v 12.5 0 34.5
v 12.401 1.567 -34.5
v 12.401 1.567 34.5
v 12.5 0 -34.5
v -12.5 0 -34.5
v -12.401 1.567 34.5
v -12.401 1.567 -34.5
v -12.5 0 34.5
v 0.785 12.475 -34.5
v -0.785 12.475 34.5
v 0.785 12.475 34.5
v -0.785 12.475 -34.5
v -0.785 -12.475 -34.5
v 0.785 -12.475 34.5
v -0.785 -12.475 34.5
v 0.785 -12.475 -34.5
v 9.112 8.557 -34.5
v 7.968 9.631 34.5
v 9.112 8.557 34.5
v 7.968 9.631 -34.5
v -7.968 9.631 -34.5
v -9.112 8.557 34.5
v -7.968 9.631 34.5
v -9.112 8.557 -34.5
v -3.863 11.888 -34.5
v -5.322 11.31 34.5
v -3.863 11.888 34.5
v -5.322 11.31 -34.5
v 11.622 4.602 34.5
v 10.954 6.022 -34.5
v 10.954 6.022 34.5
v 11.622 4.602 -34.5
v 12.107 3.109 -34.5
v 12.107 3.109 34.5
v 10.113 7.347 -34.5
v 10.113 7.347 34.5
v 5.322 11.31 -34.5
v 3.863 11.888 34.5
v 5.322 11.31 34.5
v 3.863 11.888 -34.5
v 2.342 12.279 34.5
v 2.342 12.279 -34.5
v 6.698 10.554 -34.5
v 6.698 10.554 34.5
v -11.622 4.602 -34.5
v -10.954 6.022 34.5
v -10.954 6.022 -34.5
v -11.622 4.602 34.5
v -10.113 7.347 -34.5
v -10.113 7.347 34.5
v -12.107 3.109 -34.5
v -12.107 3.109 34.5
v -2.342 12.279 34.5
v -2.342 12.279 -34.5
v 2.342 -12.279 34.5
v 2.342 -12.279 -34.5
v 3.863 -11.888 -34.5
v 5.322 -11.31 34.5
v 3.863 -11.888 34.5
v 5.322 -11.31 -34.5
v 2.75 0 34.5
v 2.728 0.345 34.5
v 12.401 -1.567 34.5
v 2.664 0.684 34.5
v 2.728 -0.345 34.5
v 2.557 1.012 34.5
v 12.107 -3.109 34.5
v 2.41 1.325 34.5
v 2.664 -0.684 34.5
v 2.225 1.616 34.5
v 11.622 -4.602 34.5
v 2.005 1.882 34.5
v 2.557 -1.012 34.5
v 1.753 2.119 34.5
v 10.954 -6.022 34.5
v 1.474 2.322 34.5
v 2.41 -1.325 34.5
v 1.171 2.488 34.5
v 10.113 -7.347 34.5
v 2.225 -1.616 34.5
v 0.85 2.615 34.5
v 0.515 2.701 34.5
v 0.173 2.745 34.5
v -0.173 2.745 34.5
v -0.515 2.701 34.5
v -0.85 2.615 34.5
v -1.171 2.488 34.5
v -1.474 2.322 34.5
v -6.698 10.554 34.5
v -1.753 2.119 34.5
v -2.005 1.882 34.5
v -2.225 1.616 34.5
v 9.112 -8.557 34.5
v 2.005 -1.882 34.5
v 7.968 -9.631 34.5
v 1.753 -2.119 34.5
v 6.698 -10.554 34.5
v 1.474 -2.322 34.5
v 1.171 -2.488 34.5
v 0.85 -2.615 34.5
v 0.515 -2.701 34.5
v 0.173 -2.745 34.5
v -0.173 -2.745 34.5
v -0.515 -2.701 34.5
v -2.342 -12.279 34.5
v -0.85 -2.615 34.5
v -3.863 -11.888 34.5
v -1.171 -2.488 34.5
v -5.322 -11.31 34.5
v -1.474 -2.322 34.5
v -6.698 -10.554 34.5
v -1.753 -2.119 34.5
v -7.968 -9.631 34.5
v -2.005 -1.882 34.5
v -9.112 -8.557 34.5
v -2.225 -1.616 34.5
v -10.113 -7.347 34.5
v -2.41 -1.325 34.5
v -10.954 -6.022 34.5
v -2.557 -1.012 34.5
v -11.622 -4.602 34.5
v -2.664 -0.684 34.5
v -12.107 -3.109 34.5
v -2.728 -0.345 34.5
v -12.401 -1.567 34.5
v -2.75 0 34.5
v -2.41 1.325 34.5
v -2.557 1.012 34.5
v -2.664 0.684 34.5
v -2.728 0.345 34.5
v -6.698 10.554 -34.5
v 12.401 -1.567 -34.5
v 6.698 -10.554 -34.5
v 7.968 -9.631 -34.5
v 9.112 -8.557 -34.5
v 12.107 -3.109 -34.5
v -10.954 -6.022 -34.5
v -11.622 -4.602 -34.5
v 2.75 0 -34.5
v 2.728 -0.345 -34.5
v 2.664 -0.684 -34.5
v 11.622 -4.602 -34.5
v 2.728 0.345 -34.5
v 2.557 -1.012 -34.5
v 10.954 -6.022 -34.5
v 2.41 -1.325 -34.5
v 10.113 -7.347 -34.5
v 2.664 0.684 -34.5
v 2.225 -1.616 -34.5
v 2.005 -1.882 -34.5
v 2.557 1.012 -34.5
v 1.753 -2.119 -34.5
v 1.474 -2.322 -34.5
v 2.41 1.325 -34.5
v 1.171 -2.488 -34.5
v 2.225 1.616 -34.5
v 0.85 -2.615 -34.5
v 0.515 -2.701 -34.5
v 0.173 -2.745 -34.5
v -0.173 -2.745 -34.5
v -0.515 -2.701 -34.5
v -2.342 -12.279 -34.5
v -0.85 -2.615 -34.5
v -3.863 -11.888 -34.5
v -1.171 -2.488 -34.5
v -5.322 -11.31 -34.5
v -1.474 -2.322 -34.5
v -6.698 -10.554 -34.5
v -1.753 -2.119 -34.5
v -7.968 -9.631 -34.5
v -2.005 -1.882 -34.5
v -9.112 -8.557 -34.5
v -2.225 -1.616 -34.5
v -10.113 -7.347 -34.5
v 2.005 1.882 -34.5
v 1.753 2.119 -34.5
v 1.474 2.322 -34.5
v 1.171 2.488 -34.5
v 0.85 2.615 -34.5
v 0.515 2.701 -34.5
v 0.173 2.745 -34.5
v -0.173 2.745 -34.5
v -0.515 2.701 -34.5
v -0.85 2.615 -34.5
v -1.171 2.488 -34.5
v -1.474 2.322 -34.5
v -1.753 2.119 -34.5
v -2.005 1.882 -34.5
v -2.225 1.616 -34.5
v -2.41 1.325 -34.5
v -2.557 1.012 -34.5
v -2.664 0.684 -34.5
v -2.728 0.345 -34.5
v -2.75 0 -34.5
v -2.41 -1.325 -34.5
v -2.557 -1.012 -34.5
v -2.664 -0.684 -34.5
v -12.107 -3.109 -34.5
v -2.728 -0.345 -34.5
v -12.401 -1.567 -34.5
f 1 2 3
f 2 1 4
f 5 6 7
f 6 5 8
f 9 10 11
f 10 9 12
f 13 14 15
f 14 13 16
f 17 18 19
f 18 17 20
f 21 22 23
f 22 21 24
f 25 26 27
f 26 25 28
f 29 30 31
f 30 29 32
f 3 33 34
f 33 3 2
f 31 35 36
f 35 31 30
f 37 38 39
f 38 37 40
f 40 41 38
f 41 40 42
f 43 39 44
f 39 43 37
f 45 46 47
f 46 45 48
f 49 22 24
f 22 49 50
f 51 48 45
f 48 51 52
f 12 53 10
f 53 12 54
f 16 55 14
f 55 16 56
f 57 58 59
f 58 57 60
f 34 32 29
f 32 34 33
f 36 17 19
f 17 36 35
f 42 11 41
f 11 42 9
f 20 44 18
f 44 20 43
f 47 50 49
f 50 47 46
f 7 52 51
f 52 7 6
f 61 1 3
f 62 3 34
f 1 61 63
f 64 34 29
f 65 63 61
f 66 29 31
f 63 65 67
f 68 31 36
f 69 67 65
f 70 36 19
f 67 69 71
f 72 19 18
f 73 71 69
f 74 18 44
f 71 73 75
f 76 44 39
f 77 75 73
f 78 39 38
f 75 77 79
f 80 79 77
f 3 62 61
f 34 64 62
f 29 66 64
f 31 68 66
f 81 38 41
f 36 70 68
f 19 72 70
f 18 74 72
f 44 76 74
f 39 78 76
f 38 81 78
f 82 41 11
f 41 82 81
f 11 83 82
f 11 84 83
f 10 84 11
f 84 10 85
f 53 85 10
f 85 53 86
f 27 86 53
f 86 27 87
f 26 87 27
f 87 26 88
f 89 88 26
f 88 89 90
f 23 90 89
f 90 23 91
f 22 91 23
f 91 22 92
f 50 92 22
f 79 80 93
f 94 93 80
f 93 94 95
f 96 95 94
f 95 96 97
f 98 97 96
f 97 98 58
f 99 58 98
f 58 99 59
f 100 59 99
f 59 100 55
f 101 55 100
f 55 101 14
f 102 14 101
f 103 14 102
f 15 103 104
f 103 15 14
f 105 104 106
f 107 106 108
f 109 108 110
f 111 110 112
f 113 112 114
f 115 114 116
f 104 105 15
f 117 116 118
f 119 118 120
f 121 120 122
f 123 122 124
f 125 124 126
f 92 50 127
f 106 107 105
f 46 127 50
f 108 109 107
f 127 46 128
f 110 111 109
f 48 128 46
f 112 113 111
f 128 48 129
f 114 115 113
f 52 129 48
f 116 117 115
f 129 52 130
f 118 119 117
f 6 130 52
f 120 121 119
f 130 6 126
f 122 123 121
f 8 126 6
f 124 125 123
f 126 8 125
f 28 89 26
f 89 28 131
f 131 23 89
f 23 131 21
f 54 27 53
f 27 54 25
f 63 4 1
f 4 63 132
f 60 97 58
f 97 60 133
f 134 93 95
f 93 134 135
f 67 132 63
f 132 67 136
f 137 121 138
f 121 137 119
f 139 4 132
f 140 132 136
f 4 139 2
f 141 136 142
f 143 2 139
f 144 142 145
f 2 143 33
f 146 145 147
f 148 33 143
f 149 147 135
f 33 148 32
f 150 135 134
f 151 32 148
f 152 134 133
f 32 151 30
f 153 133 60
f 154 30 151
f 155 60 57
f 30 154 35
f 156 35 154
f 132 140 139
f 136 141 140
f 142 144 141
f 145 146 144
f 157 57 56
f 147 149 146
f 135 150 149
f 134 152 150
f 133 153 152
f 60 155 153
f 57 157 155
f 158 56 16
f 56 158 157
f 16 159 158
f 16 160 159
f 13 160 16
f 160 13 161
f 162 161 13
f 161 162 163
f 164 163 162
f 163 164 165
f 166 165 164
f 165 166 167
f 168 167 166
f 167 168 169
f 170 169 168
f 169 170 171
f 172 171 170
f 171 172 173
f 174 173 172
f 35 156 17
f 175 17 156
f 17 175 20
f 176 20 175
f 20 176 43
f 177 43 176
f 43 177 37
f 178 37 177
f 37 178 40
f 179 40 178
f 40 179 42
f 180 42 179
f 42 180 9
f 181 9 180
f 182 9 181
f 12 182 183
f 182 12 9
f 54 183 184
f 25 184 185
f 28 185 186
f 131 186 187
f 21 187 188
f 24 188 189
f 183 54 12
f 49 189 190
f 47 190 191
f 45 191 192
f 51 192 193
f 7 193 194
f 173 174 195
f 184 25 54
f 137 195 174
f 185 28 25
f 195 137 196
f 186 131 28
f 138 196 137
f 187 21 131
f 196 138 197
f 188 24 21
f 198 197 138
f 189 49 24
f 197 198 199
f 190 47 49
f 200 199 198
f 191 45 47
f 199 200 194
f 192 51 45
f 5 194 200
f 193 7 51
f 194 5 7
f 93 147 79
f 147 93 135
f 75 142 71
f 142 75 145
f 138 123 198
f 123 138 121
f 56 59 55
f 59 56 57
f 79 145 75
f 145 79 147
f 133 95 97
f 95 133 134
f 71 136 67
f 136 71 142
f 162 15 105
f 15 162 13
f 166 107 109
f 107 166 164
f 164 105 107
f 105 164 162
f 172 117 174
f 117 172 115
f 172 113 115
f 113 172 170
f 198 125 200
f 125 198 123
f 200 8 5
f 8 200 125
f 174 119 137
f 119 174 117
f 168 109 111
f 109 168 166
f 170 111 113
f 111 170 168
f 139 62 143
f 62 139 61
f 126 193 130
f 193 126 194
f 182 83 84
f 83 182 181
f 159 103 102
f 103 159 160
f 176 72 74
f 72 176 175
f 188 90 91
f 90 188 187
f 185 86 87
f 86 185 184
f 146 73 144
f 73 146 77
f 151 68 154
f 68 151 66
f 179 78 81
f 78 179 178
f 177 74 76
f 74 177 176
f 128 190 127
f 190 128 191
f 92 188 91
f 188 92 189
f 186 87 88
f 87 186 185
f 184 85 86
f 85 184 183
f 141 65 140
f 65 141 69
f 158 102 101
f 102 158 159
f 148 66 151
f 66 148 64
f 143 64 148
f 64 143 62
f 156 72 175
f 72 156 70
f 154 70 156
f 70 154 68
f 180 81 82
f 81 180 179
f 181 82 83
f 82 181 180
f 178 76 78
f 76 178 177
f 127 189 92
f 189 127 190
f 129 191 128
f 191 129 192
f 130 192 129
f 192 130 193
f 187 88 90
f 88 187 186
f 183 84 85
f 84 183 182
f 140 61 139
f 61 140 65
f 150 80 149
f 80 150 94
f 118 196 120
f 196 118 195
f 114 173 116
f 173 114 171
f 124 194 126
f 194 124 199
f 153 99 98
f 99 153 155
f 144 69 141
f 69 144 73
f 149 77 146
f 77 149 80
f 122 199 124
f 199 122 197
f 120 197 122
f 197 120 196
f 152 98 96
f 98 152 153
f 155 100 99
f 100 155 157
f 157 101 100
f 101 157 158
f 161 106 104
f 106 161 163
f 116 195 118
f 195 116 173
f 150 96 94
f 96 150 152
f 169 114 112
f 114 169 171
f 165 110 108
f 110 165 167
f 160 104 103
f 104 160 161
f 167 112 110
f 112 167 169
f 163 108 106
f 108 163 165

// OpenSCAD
$fn = 50;


difference() {
	union() {
		translate(v = [0, 0, -34.5000000000]) {
			cylinder(h = 69, r = 12.5000000000);
		}
	}
	union() {
		translate(v = [0, 0, -100.0000000000]) {
			cylinder(h = 200, r = 2.7500000000);
		}
	}
}
